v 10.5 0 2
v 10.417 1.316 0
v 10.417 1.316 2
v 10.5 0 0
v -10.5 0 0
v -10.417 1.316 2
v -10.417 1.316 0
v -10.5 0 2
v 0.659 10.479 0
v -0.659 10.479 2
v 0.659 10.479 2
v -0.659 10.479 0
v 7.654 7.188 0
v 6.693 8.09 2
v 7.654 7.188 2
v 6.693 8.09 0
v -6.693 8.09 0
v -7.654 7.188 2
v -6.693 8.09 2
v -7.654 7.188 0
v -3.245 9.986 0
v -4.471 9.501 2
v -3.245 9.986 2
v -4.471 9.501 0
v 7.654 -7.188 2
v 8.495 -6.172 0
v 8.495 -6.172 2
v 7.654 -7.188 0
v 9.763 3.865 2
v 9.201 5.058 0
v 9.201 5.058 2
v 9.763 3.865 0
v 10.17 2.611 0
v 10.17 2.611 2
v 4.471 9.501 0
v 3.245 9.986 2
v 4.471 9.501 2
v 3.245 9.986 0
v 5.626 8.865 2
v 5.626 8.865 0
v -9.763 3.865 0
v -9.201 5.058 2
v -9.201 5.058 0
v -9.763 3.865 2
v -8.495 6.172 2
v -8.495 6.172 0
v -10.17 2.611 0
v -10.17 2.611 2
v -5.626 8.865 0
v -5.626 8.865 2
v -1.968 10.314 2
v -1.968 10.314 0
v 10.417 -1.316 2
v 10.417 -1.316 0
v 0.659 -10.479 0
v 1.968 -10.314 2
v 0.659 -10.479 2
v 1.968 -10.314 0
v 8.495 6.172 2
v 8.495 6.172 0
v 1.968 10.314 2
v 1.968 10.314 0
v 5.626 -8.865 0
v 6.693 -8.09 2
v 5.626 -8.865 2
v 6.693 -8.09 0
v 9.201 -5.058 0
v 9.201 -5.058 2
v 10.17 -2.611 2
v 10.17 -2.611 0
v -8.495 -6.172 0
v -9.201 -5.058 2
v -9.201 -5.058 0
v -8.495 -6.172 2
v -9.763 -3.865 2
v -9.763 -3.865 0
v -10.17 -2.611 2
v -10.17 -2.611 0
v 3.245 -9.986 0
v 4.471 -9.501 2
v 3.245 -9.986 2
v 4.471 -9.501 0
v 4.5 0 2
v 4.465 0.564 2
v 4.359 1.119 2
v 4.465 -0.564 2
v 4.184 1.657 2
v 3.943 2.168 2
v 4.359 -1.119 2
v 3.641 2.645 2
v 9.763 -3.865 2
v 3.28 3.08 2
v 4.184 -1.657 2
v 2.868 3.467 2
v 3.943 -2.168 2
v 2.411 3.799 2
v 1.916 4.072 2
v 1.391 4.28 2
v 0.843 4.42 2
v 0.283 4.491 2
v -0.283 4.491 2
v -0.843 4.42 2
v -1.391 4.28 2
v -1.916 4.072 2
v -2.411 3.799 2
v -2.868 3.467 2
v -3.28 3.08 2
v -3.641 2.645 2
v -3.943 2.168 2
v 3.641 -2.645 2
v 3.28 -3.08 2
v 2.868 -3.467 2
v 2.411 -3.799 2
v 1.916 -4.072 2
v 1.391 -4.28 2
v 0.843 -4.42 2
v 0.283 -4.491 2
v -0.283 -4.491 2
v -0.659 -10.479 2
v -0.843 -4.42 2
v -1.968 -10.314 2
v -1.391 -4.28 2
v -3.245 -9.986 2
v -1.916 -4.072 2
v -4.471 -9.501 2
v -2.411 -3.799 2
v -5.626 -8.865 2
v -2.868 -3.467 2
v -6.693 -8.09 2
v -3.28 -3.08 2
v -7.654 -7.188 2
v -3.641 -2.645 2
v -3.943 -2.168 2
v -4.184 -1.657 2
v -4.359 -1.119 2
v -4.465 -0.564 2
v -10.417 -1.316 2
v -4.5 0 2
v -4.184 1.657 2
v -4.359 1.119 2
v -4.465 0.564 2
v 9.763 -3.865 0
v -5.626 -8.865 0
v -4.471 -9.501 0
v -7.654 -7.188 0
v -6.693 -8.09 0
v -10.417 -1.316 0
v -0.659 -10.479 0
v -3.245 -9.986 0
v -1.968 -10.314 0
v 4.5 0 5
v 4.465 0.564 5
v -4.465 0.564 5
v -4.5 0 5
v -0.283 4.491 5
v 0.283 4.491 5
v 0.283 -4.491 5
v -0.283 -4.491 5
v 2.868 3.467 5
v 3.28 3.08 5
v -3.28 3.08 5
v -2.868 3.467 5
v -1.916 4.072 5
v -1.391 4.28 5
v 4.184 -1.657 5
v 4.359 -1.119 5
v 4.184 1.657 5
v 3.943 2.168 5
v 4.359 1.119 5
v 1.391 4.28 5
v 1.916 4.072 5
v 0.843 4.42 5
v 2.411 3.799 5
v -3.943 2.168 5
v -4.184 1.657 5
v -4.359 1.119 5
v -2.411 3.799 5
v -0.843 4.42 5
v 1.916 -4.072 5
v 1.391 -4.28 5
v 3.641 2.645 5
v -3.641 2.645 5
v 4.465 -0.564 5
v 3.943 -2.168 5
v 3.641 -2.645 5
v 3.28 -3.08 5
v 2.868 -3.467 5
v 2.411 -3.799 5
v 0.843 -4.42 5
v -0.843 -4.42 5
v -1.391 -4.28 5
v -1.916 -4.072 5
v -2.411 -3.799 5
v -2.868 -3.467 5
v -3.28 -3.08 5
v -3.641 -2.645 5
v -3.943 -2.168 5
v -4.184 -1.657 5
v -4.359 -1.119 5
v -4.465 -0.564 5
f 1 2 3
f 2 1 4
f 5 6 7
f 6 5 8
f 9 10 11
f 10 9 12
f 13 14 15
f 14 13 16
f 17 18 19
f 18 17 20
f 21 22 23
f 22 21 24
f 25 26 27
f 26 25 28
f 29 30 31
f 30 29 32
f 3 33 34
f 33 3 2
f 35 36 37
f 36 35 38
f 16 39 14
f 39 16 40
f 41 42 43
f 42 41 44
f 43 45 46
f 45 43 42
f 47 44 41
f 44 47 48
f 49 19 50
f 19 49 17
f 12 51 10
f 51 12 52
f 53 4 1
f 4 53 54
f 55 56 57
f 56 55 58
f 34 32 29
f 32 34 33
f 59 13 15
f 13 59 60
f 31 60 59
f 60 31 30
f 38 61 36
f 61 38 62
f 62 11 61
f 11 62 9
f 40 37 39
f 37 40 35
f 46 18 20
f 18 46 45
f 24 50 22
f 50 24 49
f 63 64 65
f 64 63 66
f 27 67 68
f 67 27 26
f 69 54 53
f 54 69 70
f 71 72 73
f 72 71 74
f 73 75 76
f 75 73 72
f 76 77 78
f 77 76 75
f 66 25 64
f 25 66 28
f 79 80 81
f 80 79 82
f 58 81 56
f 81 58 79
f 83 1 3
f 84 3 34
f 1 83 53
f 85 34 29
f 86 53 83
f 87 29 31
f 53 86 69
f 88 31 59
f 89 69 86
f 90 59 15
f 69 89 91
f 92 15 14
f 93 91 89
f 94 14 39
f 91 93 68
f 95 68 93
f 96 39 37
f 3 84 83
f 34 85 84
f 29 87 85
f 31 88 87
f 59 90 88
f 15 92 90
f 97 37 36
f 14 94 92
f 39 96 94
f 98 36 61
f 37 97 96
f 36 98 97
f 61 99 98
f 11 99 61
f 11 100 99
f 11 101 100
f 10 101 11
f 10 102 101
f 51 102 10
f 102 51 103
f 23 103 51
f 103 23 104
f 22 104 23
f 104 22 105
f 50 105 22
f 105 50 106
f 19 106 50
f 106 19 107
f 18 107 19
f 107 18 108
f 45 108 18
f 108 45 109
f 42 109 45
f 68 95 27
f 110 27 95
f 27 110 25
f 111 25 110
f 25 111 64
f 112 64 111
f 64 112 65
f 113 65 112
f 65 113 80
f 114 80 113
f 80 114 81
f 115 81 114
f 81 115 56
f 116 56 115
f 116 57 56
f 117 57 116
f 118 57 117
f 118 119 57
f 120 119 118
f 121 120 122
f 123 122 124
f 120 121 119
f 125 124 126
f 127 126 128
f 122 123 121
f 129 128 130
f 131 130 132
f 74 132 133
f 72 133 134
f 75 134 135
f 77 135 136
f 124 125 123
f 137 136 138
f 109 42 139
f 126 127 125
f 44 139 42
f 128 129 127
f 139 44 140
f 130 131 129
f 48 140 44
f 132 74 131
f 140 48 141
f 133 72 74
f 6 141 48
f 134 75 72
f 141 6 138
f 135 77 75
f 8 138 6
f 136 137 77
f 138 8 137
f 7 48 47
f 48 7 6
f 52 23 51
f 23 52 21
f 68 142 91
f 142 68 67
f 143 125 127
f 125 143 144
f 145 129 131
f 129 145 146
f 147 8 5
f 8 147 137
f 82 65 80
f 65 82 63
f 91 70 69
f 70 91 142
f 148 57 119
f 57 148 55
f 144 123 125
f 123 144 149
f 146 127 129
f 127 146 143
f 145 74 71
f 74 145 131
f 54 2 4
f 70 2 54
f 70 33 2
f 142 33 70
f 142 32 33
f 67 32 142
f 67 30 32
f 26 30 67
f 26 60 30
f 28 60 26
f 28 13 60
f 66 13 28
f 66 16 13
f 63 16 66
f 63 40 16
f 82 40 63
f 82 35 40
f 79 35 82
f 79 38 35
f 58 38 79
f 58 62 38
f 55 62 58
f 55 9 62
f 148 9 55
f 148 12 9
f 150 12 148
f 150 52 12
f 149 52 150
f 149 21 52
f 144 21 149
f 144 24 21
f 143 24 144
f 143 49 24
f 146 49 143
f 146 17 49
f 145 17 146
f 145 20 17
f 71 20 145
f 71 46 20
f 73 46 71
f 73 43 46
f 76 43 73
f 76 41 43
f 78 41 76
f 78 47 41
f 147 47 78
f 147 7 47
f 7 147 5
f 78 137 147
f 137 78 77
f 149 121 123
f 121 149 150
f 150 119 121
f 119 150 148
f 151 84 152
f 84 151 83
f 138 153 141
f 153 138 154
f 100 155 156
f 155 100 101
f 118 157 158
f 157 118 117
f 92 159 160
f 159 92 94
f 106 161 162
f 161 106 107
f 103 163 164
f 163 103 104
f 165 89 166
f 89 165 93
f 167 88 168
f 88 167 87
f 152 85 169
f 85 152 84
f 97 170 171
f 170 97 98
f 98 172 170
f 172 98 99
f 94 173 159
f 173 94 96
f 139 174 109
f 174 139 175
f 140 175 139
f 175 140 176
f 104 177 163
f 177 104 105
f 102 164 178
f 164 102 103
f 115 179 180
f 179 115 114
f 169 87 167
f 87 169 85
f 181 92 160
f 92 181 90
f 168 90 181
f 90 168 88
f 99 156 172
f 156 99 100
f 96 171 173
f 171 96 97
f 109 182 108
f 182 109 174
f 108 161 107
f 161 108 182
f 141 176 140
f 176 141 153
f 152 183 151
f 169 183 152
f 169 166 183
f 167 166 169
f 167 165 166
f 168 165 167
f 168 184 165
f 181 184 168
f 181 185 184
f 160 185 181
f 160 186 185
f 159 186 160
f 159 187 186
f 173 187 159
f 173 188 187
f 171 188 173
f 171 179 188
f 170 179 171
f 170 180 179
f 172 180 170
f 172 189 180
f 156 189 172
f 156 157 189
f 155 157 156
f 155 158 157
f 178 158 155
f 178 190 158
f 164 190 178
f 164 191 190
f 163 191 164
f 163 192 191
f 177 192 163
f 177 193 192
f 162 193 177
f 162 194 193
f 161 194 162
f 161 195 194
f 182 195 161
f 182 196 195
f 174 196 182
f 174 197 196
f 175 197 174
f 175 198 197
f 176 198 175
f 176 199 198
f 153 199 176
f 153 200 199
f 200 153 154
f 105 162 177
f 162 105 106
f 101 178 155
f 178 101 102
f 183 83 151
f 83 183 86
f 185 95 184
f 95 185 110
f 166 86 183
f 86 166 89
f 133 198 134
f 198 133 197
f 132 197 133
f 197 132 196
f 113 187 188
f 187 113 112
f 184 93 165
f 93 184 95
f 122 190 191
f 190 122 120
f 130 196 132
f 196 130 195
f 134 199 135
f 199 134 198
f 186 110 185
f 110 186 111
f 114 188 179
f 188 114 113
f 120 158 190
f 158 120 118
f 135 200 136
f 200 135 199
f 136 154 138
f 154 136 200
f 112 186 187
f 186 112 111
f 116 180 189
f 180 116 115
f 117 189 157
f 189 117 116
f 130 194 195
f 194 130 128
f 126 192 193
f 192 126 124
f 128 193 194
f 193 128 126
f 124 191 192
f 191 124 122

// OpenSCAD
$fn=50;
module InnerValve() {
    union(){
        cylinder(r=10.5, h=2);
        translate([0.0,0.0,1.0])cylinder(r=4.5, h=4);
  };    
};
InnerValve();
